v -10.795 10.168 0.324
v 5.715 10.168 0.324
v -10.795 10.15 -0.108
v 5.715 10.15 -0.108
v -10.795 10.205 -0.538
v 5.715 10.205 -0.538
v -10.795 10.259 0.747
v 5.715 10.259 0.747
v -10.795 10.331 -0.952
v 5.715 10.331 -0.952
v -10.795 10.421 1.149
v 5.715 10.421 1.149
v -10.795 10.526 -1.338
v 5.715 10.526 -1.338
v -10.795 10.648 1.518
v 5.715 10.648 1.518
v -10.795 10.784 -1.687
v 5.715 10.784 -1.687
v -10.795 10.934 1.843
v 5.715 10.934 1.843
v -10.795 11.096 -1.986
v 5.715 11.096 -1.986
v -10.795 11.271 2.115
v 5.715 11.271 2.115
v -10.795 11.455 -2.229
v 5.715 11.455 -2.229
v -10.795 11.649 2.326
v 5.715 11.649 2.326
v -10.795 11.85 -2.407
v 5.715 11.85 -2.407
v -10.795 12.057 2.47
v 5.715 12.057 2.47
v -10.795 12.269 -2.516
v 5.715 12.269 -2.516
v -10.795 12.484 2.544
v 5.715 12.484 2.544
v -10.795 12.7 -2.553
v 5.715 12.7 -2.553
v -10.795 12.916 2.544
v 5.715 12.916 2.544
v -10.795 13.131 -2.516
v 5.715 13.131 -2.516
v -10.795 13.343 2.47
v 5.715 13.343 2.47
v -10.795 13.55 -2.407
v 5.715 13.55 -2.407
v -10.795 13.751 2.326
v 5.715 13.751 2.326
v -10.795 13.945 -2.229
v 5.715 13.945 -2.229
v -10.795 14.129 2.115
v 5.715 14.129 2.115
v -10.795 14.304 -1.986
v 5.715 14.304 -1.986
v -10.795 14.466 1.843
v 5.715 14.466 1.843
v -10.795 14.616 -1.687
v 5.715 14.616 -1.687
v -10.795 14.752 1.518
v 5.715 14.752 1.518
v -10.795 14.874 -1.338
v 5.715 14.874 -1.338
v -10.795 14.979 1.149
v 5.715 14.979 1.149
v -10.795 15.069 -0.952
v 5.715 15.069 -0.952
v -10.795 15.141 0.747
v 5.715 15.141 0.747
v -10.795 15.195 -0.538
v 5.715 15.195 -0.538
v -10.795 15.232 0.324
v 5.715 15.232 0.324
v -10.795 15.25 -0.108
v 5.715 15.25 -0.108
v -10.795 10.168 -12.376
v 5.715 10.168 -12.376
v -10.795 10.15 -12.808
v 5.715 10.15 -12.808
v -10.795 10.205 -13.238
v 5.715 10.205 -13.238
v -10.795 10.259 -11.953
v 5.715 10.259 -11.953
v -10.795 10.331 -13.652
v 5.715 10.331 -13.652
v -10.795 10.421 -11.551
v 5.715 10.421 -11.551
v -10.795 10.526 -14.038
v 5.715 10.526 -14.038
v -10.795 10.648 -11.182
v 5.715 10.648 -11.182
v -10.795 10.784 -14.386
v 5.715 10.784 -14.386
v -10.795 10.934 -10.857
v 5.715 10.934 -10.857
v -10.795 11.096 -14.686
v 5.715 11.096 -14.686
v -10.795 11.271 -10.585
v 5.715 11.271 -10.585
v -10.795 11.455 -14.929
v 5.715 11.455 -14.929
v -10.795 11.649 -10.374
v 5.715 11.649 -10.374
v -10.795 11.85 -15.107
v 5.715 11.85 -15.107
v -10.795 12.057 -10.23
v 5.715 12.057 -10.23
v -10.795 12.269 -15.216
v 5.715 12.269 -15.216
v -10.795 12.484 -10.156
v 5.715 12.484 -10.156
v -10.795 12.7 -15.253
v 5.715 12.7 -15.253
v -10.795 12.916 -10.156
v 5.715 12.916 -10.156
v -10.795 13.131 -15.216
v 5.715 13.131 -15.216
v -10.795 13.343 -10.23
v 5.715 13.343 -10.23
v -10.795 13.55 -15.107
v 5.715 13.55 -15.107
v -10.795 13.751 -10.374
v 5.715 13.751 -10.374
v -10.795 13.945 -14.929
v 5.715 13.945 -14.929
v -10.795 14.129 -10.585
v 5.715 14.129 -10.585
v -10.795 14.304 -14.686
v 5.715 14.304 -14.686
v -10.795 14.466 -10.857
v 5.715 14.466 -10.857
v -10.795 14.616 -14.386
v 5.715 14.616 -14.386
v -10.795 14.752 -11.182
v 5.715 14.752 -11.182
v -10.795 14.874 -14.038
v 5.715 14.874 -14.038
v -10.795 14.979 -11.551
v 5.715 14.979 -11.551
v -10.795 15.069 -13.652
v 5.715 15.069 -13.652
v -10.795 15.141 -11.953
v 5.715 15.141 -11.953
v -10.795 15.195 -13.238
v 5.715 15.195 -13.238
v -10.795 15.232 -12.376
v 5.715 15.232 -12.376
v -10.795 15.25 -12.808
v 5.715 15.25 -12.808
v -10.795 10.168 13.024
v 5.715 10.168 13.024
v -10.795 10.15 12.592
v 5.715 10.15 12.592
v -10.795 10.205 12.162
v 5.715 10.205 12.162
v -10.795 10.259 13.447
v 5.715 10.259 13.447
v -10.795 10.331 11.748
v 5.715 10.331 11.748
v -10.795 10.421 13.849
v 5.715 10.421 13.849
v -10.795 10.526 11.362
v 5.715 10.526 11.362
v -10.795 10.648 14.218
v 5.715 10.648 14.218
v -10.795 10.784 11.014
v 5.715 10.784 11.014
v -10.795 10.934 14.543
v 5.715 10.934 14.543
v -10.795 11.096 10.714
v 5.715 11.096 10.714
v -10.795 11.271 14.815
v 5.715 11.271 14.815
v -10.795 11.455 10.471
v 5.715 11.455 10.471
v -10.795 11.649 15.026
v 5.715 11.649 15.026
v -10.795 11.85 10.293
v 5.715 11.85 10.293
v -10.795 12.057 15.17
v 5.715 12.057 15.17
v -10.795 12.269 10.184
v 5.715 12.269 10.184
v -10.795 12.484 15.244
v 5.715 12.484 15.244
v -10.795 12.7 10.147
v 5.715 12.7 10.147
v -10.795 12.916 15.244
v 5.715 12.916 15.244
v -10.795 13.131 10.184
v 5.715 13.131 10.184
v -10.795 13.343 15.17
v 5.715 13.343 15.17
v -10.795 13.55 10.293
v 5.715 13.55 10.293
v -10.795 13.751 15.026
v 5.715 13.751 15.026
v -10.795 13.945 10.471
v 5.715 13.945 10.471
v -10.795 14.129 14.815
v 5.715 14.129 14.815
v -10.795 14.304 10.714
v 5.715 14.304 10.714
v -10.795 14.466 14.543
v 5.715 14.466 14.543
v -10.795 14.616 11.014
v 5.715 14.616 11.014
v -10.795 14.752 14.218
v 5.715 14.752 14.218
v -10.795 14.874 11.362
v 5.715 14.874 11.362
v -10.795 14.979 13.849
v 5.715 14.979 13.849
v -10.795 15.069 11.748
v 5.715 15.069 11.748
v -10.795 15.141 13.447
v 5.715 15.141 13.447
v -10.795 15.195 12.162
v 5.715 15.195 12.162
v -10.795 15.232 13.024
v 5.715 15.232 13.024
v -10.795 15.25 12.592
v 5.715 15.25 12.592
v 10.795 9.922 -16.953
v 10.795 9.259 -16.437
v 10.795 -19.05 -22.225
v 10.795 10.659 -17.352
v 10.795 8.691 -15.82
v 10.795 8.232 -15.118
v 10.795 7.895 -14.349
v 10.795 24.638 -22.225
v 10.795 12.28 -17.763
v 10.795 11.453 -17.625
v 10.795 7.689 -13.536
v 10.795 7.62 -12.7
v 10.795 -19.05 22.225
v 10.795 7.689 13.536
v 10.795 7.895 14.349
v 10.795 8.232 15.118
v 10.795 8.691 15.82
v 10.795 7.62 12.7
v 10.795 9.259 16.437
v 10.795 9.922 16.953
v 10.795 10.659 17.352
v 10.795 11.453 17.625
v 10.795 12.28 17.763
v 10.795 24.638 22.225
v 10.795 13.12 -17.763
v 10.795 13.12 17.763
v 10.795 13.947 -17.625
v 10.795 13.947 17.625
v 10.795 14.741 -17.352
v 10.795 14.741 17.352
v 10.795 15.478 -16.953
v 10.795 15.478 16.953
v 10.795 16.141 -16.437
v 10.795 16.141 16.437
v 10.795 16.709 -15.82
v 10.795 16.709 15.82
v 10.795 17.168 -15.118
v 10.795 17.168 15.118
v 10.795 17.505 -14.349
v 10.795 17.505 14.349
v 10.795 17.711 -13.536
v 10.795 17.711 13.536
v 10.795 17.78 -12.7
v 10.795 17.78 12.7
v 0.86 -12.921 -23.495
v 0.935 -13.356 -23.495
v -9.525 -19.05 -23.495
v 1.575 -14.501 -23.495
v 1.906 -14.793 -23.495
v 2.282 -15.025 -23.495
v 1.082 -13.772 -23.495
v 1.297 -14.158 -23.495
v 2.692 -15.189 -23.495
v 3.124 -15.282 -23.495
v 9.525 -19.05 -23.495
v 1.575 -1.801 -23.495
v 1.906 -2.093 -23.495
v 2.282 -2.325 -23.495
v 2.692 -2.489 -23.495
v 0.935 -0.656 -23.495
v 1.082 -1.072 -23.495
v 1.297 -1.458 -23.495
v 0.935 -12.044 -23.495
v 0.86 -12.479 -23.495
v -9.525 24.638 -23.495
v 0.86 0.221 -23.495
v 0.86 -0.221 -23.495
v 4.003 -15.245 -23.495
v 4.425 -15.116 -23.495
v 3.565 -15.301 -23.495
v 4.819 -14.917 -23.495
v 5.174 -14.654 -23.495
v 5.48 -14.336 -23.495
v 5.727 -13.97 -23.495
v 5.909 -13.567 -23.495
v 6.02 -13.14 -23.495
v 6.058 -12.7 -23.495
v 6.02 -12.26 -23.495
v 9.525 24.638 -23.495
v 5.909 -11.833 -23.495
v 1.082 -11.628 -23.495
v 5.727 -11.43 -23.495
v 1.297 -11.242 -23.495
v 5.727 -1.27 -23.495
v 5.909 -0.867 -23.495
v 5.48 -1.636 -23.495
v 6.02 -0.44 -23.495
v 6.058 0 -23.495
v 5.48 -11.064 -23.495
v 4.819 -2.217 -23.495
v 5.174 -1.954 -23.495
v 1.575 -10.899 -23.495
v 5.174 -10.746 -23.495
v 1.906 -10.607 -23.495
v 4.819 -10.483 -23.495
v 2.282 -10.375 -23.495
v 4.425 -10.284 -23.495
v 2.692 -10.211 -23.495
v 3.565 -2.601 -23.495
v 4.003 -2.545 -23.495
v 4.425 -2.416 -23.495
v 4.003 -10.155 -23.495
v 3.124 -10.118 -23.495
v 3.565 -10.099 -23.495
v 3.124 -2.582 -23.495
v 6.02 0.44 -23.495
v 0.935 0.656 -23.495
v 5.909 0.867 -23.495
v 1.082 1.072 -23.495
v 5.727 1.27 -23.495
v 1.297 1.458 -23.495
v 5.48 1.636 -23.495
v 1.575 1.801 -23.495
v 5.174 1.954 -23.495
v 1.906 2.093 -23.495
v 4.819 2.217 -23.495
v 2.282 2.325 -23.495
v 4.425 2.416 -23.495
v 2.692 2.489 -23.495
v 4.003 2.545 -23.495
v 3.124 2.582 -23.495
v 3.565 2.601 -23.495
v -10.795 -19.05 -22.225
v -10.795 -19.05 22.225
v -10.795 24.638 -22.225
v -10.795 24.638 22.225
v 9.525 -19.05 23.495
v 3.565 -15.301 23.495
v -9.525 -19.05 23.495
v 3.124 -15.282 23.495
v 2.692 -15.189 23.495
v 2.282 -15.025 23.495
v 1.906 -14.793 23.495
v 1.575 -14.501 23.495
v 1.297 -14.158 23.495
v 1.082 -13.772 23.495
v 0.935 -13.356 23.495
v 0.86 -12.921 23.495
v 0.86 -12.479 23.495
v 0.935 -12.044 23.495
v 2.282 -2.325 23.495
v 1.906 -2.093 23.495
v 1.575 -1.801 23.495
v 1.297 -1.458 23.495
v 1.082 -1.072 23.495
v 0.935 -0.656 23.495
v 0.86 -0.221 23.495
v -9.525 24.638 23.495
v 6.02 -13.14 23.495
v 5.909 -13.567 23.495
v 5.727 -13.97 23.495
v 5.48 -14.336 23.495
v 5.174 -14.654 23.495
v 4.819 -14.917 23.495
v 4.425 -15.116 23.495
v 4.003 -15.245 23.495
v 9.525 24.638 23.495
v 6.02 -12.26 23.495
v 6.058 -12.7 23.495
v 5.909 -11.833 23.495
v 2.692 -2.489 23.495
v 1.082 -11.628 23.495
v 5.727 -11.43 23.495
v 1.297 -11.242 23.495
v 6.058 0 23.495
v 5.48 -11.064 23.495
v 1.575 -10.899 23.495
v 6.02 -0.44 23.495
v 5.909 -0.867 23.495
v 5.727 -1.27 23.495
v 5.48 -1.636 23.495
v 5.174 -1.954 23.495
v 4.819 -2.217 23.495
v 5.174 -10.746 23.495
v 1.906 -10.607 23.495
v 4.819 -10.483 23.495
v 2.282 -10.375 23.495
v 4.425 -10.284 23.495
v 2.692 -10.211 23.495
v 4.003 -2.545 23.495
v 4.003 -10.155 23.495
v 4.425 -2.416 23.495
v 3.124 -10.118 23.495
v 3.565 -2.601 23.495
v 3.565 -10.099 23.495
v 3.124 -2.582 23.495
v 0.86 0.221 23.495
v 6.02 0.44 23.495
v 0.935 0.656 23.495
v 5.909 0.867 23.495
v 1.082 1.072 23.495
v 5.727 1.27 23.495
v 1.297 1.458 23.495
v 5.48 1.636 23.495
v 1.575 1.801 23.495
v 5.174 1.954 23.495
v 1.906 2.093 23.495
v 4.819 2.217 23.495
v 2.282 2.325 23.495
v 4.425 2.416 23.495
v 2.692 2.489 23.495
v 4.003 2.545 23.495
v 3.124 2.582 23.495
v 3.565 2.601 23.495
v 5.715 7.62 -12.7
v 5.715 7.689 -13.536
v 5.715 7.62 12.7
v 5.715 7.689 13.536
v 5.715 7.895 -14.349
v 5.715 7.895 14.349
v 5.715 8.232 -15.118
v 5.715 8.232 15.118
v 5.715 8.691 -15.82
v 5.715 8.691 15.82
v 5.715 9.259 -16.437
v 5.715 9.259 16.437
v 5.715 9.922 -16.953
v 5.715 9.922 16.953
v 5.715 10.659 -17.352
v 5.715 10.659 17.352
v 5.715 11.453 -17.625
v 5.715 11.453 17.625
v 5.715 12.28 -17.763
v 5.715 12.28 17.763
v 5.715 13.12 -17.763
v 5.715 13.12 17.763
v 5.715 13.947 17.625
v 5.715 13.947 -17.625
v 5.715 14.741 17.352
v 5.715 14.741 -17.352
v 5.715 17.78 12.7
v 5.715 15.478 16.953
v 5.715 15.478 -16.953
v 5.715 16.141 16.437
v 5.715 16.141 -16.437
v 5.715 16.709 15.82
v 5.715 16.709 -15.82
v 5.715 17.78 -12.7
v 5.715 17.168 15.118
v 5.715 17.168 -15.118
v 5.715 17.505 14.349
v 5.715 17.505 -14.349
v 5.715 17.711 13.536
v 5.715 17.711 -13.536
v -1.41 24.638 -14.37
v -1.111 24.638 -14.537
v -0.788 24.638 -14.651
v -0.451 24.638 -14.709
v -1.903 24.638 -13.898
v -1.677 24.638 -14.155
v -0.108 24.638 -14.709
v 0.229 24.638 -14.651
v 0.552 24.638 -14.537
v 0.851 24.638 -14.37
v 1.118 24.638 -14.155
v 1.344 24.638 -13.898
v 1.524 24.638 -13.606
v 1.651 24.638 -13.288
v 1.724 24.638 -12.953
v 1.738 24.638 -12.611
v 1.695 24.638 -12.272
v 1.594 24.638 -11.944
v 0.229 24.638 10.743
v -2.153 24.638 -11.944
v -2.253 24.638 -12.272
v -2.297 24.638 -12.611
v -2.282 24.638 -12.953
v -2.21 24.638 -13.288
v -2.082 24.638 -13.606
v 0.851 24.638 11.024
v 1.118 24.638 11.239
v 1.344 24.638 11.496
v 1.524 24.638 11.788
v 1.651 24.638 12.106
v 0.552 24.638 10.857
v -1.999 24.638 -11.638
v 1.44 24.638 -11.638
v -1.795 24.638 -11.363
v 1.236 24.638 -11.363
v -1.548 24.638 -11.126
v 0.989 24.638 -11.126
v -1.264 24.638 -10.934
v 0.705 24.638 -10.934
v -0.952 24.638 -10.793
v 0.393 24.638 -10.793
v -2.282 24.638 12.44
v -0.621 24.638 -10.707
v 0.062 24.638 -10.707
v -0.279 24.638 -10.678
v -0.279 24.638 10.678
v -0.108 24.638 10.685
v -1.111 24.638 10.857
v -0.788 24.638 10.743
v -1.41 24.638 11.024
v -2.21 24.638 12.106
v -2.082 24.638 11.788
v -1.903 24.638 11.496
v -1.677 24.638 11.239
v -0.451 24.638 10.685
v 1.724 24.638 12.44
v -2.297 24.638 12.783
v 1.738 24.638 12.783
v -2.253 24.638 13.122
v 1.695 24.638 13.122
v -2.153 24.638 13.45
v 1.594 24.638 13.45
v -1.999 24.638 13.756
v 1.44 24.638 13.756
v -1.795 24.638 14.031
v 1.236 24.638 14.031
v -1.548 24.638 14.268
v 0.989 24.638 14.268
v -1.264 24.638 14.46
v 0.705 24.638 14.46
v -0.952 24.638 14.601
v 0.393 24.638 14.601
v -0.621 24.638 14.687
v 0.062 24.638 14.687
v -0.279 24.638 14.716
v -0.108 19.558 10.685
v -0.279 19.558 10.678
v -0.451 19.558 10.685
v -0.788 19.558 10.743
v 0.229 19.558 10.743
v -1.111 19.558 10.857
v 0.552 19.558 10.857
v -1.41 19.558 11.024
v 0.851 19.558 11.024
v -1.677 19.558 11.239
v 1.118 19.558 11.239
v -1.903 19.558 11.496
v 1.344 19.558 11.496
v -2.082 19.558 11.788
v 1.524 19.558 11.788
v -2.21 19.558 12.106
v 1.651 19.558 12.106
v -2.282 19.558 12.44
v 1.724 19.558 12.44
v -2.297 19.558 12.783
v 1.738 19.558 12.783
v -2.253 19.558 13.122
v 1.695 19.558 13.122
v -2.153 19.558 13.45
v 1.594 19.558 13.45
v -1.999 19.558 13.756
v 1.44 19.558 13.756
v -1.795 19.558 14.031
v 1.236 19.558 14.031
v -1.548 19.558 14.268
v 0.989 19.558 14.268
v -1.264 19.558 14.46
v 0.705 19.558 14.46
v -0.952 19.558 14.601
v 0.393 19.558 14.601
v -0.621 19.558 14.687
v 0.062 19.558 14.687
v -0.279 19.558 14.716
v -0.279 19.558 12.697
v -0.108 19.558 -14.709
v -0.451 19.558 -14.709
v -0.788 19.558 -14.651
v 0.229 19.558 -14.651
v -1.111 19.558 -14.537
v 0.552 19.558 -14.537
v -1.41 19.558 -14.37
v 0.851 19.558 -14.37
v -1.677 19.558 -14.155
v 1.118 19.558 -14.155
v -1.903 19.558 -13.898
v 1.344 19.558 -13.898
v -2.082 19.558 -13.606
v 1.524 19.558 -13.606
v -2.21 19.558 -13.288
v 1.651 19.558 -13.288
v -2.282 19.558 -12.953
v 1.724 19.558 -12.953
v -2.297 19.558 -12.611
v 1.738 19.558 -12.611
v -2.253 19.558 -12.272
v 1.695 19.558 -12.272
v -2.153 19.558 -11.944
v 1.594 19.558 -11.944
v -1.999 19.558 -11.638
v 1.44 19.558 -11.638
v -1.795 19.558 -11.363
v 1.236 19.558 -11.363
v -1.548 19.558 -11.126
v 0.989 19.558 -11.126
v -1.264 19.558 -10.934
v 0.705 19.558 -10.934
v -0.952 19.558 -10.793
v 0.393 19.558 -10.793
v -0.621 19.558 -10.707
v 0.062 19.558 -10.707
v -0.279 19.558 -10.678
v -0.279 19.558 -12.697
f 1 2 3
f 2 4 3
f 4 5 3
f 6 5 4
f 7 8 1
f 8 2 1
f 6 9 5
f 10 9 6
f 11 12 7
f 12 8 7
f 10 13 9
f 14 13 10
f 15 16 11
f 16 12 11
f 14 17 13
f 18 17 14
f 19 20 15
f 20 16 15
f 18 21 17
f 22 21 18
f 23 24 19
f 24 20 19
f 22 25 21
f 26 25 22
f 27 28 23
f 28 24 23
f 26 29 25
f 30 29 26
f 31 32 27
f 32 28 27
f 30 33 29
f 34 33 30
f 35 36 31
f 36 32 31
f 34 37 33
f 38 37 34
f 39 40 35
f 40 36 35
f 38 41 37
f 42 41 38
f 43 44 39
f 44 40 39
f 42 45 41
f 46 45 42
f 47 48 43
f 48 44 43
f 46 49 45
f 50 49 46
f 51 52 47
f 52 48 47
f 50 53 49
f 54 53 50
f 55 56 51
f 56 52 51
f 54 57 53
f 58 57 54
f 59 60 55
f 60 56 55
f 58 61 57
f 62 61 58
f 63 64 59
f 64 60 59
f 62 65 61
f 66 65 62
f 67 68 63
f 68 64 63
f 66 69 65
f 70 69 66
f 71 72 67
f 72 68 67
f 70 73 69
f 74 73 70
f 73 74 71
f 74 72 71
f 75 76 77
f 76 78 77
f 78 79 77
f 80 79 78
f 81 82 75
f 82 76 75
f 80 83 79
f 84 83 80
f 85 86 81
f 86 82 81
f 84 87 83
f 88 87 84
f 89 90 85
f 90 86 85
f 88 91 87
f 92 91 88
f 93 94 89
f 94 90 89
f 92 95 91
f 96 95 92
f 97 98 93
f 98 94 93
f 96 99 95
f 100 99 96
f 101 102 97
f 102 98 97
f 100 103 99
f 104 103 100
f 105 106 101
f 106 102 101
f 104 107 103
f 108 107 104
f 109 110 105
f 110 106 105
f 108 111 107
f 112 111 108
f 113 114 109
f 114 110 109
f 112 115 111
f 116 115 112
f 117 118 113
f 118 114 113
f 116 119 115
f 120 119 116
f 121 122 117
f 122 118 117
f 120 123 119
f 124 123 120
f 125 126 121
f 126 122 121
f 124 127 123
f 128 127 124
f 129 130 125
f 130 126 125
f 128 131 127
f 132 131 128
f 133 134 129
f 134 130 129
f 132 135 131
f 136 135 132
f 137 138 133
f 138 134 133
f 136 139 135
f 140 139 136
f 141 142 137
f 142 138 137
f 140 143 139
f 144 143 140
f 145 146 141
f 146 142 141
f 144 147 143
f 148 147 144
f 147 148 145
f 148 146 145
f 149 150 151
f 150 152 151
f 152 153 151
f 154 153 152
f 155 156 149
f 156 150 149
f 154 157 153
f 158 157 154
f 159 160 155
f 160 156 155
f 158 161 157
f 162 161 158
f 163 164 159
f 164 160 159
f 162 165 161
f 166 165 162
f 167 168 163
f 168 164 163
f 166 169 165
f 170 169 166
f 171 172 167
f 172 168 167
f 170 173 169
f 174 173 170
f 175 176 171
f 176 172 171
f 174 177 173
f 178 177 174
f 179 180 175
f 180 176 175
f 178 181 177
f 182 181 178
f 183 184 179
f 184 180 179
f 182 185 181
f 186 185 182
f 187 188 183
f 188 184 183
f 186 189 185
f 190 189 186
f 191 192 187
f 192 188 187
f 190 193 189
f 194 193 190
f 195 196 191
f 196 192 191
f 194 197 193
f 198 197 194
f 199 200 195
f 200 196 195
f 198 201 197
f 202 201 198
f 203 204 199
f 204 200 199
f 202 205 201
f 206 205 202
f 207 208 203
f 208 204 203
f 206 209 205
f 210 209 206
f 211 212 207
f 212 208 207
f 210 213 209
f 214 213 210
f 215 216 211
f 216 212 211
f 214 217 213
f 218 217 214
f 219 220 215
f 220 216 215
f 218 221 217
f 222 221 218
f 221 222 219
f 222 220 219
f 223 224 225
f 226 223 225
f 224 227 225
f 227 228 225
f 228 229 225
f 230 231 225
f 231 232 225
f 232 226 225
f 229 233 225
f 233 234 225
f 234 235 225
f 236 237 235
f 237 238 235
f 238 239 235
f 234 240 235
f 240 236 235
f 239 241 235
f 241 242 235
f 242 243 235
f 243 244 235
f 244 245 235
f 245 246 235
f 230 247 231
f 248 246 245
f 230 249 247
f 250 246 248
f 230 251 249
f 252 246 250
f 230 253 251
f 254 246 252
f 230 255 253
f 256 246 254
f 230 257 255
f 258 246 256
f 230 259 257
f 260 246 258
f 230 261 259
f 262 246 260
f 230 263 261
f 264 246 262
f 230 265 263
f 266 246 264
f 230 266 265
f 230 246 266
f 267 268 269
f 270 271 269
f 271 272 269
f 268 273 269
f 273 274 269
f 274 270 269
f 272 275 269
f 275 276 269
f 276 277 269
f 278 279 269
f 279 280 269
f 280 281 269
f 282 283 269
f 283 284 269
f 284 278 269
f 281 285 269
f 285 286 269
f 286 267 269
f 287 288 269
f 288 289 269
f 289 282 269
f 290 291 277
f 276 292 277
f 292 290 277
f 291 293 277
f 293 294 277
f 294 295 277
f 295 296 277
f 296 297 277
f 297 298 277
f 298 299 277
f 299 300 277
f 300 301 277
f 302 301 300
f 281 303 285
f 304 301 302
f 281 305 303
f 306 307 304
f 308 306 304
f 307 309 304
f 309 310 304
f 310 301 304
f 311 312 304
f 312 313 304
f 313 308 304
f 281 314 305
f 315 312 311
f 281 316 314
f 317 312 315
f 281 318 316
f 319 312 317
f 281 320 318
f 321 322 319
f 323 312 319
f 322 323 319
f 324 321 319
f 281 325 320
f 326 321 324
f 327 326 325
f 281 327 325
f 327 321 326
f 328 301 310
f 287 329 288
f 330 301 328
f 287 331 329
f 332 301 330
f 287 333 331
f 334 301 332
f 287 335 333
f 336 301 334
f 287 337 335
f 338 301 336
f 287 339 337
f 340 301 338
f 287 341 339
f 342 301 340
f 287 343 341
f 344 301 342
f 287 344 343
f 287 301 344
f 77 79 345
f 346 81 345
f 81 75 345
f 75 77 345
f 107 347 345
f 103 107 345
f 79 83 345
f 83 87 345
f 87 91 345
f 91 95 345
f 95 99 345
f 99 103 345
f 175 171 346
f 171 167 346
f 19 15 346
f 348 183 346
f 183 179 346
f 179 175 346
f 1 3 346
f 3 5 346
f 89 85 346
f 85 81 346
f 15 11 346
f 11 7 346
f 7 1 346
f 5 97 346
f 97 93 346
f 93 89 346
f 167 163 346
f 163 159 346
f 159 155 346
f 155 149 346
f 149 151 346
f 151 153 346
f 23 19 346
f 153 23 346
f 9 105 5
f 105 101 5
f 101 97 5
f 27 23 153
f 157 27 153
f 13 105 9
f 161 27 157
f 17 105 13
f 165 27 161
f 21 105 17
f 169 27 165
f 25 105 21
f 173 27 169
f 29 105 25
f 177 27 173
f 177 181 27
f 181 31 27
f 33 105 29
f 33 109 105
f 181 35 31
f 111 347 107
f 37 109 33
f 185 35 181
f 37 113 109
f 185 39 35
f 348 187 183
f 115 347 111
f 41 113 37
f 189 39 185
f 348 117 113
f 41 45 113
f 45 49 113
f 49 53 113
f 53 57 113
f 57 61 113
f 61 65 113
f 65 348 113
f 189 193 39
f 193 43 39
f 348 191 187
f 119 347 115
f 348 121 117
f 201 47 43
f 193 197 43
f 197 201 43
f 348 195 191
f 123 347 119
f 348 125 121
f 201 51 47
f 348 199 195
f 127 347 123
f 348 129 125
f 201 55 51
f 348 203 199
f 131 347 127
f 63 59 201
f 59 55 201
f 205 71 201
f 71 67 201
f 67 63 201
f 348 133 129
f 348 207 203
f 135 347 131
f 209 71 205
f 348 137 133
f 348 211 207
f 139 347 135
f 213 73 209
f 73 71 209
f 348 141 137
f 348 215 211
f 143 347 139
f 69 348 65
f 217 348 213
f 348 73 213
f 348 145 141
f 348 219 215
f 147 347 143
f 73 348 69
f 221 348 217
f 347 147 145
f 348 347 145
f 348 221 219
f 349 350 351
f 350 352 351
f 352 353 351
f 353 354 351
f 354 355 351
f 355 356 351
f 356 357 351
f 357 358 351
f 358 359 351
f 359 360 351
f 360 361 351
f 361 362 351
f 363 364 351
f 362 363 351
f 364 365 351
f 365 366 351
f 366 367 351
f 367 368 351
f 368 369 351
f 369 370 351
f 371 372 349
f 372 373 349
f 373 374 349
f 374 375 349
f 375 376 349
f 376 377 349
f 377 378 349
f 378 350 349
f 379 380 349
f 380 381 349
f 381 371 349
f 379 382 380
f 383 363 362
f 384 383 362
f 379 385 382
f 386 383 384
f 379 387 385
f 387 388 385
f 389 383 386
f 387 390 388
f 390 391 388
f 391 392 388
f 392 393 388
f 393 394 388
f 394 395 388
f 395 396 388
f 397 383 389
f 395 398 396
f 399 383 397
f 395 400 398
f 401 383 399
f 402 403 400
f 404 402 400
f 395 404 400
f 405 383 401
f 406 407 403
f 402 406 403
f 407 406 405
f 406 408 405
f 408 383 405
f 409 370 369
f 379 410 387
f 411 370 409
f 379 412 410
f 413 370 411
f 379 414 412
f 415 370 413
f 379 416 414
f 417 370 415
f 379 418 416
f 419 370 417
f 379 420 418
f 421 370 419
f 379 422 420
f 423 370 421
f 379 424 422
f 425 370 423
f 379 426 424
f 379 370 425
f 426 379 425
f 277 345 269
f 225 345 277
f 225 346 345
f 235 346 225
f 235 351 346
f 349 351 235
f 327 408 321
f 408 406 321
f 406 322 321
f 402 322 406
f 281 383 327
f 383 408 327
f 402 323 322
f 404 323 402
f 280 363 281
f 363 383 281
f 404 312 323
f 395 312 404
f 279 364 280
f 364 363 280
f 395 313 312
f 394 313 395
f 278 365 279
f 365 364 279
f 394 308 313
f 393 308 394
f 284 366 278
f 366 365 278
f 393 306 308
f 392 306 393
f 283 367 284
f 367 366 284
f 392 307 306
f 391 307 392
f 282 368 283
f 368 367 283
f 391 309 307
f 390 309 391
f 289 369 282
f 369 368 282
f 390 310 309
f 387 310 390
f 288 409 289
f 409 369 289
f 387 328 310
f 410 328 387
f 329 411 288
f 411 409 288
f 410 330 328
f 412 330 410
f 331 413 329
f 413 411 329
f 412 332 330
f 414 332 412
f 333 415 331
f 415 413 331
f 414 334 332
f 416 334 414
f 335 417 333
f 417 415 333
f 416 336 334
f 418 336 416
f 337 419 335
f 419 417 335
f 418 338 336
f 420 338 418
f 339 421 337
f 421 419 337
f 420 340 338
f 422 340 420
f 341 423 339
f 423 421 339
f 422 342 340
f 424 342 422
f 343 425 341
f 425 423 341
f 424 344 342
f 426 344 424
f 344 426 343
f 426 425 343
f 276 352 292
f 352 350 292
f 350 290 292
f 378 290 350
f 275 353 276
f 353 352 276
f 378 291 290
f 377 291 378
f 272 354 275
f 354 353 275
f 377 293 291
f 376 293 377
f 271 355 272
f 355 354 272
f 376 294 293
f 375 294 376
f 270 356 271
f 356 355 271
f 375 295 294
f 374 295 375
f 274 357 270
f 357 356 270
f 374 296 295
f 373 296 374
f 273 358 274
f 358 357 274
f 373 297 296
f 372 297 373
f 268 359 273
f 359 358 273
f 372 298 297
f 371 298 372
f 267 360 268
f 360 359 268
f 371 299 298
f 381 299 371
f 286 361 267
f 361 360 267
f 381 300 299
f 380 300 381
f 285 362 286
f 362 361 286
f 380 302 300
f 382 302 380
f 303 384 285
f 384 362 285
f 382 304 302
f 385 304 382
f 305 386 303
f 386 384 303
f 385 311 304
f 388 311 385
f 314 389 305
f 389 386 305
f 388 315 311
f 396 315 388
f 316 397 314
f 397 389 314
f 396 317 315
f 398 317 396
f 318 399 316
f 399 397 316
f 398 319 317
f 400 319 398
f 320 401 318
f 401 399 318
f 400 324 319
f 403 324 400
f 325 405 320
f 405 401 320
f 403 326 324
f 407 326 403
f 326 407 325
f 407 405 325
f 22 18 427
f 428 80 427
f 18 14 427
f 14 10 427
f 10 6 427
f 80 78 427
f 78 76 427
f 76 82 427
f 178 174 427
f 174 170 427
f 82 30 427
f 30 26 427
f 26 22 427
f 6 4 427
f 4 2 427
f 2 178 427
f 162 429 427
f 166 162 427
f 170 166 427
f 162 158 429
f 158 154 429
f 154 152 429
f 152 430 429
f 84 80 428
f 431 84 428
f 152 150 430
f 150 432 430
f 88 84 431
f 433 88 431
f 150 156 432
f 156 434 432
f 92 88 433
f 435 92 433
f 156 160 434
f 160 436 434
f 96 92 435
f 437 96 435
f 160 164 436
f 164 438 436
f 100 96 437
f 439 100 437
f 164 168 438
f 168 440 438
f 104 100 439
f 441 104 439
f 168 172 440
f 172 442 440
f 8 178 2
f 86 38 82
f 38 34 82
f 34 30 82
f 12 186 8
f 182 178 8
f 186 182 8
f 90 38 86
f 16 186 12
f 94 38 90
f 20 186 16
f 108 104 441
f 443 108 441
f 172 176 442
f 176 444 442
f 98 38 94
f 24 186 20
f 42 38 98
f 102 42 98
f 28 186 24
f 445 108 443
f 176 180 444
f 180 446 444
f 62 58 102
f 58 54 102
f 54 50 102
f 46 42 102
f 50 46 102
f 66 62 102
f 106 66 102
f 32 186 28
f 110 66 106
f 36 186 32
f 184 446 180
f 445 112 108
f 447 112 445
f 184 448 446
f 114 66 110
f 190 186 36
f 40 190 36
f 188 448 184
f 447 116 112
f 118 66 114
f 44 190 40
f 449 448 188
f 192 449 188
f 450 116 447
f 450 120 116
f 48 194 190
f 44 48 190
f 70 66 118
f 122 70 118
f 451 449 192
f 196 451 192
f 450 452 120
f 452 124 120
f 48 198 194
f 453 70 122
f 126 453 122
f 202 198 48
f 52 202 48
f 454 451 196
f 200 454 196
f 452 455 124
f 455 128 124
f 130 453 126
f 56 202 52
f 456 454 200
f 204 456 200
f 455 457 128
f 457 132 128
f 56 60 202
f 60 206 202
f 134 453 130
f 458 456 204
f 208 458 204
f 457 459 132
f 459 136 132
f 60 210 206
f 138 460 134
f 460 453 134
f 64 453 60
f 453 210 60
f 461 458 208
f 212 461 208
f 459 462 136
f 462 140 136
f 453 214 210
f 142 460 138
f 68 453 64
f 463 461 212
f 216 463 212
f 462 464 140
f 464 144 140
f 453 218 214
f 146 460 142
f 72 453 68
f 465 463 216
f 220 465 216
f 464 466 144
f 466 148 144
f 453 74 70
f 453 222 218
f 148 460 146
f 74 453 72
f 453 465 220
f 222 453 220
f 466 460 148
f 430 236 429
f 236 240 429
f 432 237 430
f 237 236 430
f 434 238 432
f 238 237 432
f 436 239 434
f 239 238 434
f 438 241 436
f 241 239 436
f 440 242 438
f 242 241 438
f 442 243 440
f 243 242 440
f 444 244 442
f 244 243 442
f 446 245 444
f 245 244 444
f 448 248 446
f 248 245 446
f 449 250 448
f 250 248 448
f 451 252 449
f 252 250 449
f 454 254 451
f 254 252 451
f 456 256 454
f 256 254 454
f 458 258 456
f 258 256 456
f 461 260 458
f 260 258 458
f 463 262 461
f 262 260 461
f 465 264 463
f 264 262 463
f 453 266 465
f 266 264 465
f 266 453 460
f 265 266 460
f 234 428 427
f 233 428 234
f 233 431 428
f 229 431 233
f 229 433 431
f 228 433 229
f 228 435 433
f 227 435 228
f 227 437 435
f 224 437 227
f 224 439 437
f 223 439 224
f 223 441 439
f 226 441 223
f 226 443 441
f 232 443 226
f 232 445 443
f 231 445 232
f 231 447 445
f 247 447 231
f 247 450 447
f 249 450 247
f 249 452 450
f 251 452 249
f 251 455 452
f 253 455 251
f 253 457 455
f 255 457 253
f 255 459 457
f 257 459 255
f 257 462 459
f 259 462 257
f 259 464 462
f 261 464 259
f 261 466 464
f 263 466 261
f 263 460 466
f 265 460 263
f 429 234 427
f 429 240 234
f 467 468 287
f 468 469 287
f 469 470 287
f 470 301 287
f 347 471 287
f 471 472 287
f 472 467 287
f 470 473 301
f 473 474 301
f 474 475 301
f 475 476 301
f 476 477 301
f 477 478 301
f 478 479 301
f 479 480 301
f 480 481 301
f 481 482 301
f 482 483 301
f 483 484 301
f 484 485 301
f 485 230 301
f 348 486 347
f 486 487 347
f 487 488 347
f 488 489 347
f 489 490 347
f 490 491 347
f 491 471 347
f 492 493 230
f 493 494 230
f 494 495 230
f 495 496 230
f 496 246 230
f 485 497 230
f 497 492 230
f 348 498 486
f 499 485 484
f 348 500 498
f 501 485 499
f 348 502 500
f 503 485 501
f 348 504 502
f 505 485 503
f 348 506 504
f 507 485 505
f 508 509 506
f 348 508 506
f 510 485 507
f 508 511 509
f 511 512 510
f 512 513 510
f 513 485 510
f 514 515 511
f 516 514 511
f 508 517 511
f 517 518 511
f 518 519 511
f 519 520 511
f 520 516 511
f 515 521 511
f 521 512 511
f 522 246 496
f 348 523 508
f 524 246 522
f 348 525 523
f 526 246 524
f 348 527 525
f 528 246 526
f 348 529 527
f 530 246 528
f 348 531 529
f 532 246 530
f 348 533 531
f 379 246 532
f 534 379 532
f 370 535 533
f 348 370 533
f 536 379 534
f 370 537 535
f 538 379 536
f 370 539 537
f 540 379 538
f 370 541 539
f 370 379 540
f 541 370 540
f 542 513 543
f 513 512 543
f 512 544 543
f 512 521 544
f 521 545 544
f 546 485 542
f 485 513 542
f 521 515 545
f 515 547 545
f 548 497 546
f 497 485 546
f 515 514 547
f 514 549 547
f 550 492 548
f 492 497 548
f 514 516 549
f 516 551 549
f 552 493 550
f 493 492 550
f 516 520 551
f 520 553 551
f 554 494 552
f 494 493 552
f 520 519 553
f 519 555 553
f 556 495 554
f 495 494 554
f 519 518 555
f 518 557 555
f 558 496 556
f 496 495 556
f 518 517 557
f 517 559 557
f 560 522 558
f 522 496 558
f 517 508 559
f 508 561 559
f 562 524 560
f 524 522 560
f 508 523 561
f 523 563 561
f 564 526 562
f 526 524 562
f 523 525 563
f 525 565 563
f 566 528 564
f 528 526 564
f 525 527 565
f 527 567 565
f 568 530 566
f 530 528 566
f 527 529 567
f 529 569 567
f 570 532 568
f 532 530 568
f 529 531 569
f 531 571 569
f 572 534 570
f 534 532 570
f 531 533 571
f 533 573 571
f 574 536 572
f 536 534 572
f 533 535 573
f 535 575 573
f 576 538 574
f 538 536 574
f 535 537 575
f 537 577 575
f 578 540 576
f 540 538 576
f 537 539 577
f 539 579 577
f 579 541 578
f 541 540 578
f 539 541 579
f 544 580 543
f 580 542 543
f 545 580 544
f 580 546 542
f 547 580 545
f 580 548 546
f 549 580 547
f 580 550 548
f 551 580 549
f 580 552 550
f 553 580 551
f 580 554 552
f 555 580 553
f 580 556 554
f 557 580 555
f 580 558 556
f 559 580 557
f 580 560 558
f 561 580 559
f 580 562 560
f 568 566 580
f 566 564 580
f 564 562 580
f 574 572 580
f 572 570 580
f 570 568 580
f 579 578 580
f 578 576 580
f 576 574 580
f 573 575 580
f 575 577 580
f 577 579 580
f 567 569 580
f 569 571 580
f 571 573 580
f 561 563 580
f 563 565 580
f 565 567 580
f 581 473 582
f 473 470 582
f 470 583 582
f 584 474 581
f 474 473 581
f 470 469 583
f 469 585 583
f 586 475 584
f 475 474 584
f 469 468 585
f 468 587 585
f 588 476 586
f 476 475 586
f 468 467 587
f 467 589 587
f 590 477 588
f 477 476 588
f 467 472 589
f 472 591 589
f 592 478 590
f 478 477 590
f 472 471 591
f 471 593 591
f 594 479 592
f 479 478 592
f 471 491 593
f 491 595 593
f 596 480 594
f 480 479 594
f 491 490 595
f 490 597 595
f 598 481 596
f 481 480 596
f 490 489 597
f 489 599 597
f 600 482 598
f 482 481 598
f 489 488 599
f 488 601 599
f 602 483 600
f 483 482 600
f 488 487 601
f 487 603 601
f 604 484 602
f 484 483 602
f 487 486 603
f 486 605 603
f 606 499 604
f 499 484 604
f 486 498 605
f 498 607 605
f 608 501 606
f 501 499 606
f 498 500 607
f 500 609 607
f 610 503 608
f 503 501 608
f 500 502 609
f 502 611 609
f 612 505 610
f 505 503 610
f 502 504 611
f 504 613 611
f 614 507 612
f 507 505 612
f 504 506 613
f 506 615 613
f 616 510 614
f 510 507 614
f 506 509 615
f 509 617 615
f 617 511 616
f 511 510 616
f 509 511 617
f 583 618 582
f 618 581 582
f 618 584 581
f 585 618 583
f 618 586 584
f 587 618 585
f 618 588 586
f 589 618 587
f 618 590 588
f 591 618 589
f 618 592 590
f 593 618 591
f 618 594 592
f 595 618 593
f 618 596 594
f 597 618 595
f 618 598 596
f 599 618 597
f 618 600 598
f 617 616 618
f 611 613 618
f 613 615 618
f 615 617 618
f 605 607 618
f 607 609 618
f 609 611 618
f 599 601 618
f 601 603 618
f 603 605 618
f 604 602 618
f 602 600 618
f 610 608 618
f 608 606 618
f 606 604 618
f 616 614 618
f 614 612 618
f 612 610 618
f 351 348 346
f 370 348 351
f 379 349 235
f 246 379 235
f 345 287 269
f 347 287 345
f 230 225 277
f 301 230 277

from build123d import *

# Parameters (mm, degrees)
SKETCH1_W           = 21.59
SKETCH1_H           = 46.99
BOSS_EXTRUDE1_DEPTH = 19.05
SKETCH2_R           = 2.6035
CUT_EXTRUDE1_DEPTH  = 47.99
SKETCH4_R           = 2.5527
CUT_EXTRUDE3_DEPTH  = 22.59
CUT_EXTRUDE5_DEPTH  = 5.08
SKETCH8_W           = 21.59
SKETCH8_H           = 46.99
BOSS_EXTRUDE2_DEPTH = 5.588
SKETCH9_R           = 2.0193
CUT_EXTRUDE6_DEPTH  = 5.08
CHAMFER1_SIZE       = 1.27


with BuildPart() as part:
    # Sketch1 → Boss-Extrude1 (new body, symmetric)
    with BuildSketch(Plane(origin=(0, 0, 0), x_dir=(1, 0, 0), z_dir=(0, 1, 0))):
        Rectangle(SKETCH1_W, SKETCH1_H)
    extrude(amount=BOSS_EXTRUDE1_DEPTH, both=True)

    # Sketch2 → Cut-Extrude1 (cut, through all)
    with BuildSketch(Plane.XY.offset(23.495)):
        with Locations((3.4544, -12.7)):
            Circle(SKETCH2_R)
        with Locations((3.4544, 0)):
            Circle(SKETCH2_R)
    extrude(amount=-CUT_EXTRUDE1_DEPTH, mode=Mode.SUBTRACT)

    # Sketch4 → Cut-Extrude3 (cut, through all)
    with BuildSketch(Plane(origin=(10.795, 0, 0), x_dir=(0, 0, -1), z_dir=(1, 0, 0))):
        with Locations((-12.7, 12.7)):
            Circle(SKETCH4_R)
        with Locations((12.7, 12.7)):
            Circle(SKETCH4_R)
        with Locations((0, 12.7)):
            Circle(SKETCH4_R)
    extrude(amount=-CUT_EXTRUDE3_DEPTH, mode=Mode.SUBTRACT)

    # Sketch7 → Cut-Extrude5 (cut)
    with BuildSketch(Plane(origin=(10.795, 0, 0), x_dir=(0, 0, -1), z_dir=(1, 0, 0))):
        with BuildLine():
            Line((-12.7, 17.78), (12.7, 17.78))
            ThreePointArc((12.7, 17.78), (17.78, 12.7), (12.7, 7.62))
            Line((12.7, 7.62), (-12.7, 7.62))
            ThreePointArc((-12.7, 7.62), (-17.78, 12.7), (-12.7, 17.78))
        make_face()
    extrude(amount=-CUT_EXTRUDE5_DEPTH, mode=Mode.SUBTRACT)

    # Sketch8 → Boss-Extrude2 (add)
    with BuildSketch(Plane(origin=(0, 19.05, 0), x_dir=(1, 0, 0), z_dir=(0, 1, 0))):
        Rectangle(SKETCH8_W, SKETCH8_H)
    extrude(amount=BOSS_EXTRUDE2_DEPTH)

    # Sketch9 → Cut-Extrude6 (cut)
    with BuildSketch(Plane(origin=(0, 24.638, 0), x_dir=(1, 0, 0), z_dir=(0, 1, 0))):
        with Locations((-0.2794, 12.696926228)):
            Circle(SKETCH9_R)
        with Locations((-0.2794, -12.696926228)):
            Circle(SKETCH9_R)
    extrude(amount=-CUT_EXTRUDE6_DEPTH, mode=Mode.SUBTRACT)

    # Chamfer1
    chamfer1_edges = [part.edges().sort_by_distance(p)[0] for p in [
        (10.795, 2.794, 23.495),
        (-10.795, 2.794, 23.495),
        (-10.795, 2.794, -23.495),
        (10.795, 2.794, -23.495),
    ]]
    chamfer(chamfer1_edges, length=CHAMFER1_SIZE)


solid = part.part
